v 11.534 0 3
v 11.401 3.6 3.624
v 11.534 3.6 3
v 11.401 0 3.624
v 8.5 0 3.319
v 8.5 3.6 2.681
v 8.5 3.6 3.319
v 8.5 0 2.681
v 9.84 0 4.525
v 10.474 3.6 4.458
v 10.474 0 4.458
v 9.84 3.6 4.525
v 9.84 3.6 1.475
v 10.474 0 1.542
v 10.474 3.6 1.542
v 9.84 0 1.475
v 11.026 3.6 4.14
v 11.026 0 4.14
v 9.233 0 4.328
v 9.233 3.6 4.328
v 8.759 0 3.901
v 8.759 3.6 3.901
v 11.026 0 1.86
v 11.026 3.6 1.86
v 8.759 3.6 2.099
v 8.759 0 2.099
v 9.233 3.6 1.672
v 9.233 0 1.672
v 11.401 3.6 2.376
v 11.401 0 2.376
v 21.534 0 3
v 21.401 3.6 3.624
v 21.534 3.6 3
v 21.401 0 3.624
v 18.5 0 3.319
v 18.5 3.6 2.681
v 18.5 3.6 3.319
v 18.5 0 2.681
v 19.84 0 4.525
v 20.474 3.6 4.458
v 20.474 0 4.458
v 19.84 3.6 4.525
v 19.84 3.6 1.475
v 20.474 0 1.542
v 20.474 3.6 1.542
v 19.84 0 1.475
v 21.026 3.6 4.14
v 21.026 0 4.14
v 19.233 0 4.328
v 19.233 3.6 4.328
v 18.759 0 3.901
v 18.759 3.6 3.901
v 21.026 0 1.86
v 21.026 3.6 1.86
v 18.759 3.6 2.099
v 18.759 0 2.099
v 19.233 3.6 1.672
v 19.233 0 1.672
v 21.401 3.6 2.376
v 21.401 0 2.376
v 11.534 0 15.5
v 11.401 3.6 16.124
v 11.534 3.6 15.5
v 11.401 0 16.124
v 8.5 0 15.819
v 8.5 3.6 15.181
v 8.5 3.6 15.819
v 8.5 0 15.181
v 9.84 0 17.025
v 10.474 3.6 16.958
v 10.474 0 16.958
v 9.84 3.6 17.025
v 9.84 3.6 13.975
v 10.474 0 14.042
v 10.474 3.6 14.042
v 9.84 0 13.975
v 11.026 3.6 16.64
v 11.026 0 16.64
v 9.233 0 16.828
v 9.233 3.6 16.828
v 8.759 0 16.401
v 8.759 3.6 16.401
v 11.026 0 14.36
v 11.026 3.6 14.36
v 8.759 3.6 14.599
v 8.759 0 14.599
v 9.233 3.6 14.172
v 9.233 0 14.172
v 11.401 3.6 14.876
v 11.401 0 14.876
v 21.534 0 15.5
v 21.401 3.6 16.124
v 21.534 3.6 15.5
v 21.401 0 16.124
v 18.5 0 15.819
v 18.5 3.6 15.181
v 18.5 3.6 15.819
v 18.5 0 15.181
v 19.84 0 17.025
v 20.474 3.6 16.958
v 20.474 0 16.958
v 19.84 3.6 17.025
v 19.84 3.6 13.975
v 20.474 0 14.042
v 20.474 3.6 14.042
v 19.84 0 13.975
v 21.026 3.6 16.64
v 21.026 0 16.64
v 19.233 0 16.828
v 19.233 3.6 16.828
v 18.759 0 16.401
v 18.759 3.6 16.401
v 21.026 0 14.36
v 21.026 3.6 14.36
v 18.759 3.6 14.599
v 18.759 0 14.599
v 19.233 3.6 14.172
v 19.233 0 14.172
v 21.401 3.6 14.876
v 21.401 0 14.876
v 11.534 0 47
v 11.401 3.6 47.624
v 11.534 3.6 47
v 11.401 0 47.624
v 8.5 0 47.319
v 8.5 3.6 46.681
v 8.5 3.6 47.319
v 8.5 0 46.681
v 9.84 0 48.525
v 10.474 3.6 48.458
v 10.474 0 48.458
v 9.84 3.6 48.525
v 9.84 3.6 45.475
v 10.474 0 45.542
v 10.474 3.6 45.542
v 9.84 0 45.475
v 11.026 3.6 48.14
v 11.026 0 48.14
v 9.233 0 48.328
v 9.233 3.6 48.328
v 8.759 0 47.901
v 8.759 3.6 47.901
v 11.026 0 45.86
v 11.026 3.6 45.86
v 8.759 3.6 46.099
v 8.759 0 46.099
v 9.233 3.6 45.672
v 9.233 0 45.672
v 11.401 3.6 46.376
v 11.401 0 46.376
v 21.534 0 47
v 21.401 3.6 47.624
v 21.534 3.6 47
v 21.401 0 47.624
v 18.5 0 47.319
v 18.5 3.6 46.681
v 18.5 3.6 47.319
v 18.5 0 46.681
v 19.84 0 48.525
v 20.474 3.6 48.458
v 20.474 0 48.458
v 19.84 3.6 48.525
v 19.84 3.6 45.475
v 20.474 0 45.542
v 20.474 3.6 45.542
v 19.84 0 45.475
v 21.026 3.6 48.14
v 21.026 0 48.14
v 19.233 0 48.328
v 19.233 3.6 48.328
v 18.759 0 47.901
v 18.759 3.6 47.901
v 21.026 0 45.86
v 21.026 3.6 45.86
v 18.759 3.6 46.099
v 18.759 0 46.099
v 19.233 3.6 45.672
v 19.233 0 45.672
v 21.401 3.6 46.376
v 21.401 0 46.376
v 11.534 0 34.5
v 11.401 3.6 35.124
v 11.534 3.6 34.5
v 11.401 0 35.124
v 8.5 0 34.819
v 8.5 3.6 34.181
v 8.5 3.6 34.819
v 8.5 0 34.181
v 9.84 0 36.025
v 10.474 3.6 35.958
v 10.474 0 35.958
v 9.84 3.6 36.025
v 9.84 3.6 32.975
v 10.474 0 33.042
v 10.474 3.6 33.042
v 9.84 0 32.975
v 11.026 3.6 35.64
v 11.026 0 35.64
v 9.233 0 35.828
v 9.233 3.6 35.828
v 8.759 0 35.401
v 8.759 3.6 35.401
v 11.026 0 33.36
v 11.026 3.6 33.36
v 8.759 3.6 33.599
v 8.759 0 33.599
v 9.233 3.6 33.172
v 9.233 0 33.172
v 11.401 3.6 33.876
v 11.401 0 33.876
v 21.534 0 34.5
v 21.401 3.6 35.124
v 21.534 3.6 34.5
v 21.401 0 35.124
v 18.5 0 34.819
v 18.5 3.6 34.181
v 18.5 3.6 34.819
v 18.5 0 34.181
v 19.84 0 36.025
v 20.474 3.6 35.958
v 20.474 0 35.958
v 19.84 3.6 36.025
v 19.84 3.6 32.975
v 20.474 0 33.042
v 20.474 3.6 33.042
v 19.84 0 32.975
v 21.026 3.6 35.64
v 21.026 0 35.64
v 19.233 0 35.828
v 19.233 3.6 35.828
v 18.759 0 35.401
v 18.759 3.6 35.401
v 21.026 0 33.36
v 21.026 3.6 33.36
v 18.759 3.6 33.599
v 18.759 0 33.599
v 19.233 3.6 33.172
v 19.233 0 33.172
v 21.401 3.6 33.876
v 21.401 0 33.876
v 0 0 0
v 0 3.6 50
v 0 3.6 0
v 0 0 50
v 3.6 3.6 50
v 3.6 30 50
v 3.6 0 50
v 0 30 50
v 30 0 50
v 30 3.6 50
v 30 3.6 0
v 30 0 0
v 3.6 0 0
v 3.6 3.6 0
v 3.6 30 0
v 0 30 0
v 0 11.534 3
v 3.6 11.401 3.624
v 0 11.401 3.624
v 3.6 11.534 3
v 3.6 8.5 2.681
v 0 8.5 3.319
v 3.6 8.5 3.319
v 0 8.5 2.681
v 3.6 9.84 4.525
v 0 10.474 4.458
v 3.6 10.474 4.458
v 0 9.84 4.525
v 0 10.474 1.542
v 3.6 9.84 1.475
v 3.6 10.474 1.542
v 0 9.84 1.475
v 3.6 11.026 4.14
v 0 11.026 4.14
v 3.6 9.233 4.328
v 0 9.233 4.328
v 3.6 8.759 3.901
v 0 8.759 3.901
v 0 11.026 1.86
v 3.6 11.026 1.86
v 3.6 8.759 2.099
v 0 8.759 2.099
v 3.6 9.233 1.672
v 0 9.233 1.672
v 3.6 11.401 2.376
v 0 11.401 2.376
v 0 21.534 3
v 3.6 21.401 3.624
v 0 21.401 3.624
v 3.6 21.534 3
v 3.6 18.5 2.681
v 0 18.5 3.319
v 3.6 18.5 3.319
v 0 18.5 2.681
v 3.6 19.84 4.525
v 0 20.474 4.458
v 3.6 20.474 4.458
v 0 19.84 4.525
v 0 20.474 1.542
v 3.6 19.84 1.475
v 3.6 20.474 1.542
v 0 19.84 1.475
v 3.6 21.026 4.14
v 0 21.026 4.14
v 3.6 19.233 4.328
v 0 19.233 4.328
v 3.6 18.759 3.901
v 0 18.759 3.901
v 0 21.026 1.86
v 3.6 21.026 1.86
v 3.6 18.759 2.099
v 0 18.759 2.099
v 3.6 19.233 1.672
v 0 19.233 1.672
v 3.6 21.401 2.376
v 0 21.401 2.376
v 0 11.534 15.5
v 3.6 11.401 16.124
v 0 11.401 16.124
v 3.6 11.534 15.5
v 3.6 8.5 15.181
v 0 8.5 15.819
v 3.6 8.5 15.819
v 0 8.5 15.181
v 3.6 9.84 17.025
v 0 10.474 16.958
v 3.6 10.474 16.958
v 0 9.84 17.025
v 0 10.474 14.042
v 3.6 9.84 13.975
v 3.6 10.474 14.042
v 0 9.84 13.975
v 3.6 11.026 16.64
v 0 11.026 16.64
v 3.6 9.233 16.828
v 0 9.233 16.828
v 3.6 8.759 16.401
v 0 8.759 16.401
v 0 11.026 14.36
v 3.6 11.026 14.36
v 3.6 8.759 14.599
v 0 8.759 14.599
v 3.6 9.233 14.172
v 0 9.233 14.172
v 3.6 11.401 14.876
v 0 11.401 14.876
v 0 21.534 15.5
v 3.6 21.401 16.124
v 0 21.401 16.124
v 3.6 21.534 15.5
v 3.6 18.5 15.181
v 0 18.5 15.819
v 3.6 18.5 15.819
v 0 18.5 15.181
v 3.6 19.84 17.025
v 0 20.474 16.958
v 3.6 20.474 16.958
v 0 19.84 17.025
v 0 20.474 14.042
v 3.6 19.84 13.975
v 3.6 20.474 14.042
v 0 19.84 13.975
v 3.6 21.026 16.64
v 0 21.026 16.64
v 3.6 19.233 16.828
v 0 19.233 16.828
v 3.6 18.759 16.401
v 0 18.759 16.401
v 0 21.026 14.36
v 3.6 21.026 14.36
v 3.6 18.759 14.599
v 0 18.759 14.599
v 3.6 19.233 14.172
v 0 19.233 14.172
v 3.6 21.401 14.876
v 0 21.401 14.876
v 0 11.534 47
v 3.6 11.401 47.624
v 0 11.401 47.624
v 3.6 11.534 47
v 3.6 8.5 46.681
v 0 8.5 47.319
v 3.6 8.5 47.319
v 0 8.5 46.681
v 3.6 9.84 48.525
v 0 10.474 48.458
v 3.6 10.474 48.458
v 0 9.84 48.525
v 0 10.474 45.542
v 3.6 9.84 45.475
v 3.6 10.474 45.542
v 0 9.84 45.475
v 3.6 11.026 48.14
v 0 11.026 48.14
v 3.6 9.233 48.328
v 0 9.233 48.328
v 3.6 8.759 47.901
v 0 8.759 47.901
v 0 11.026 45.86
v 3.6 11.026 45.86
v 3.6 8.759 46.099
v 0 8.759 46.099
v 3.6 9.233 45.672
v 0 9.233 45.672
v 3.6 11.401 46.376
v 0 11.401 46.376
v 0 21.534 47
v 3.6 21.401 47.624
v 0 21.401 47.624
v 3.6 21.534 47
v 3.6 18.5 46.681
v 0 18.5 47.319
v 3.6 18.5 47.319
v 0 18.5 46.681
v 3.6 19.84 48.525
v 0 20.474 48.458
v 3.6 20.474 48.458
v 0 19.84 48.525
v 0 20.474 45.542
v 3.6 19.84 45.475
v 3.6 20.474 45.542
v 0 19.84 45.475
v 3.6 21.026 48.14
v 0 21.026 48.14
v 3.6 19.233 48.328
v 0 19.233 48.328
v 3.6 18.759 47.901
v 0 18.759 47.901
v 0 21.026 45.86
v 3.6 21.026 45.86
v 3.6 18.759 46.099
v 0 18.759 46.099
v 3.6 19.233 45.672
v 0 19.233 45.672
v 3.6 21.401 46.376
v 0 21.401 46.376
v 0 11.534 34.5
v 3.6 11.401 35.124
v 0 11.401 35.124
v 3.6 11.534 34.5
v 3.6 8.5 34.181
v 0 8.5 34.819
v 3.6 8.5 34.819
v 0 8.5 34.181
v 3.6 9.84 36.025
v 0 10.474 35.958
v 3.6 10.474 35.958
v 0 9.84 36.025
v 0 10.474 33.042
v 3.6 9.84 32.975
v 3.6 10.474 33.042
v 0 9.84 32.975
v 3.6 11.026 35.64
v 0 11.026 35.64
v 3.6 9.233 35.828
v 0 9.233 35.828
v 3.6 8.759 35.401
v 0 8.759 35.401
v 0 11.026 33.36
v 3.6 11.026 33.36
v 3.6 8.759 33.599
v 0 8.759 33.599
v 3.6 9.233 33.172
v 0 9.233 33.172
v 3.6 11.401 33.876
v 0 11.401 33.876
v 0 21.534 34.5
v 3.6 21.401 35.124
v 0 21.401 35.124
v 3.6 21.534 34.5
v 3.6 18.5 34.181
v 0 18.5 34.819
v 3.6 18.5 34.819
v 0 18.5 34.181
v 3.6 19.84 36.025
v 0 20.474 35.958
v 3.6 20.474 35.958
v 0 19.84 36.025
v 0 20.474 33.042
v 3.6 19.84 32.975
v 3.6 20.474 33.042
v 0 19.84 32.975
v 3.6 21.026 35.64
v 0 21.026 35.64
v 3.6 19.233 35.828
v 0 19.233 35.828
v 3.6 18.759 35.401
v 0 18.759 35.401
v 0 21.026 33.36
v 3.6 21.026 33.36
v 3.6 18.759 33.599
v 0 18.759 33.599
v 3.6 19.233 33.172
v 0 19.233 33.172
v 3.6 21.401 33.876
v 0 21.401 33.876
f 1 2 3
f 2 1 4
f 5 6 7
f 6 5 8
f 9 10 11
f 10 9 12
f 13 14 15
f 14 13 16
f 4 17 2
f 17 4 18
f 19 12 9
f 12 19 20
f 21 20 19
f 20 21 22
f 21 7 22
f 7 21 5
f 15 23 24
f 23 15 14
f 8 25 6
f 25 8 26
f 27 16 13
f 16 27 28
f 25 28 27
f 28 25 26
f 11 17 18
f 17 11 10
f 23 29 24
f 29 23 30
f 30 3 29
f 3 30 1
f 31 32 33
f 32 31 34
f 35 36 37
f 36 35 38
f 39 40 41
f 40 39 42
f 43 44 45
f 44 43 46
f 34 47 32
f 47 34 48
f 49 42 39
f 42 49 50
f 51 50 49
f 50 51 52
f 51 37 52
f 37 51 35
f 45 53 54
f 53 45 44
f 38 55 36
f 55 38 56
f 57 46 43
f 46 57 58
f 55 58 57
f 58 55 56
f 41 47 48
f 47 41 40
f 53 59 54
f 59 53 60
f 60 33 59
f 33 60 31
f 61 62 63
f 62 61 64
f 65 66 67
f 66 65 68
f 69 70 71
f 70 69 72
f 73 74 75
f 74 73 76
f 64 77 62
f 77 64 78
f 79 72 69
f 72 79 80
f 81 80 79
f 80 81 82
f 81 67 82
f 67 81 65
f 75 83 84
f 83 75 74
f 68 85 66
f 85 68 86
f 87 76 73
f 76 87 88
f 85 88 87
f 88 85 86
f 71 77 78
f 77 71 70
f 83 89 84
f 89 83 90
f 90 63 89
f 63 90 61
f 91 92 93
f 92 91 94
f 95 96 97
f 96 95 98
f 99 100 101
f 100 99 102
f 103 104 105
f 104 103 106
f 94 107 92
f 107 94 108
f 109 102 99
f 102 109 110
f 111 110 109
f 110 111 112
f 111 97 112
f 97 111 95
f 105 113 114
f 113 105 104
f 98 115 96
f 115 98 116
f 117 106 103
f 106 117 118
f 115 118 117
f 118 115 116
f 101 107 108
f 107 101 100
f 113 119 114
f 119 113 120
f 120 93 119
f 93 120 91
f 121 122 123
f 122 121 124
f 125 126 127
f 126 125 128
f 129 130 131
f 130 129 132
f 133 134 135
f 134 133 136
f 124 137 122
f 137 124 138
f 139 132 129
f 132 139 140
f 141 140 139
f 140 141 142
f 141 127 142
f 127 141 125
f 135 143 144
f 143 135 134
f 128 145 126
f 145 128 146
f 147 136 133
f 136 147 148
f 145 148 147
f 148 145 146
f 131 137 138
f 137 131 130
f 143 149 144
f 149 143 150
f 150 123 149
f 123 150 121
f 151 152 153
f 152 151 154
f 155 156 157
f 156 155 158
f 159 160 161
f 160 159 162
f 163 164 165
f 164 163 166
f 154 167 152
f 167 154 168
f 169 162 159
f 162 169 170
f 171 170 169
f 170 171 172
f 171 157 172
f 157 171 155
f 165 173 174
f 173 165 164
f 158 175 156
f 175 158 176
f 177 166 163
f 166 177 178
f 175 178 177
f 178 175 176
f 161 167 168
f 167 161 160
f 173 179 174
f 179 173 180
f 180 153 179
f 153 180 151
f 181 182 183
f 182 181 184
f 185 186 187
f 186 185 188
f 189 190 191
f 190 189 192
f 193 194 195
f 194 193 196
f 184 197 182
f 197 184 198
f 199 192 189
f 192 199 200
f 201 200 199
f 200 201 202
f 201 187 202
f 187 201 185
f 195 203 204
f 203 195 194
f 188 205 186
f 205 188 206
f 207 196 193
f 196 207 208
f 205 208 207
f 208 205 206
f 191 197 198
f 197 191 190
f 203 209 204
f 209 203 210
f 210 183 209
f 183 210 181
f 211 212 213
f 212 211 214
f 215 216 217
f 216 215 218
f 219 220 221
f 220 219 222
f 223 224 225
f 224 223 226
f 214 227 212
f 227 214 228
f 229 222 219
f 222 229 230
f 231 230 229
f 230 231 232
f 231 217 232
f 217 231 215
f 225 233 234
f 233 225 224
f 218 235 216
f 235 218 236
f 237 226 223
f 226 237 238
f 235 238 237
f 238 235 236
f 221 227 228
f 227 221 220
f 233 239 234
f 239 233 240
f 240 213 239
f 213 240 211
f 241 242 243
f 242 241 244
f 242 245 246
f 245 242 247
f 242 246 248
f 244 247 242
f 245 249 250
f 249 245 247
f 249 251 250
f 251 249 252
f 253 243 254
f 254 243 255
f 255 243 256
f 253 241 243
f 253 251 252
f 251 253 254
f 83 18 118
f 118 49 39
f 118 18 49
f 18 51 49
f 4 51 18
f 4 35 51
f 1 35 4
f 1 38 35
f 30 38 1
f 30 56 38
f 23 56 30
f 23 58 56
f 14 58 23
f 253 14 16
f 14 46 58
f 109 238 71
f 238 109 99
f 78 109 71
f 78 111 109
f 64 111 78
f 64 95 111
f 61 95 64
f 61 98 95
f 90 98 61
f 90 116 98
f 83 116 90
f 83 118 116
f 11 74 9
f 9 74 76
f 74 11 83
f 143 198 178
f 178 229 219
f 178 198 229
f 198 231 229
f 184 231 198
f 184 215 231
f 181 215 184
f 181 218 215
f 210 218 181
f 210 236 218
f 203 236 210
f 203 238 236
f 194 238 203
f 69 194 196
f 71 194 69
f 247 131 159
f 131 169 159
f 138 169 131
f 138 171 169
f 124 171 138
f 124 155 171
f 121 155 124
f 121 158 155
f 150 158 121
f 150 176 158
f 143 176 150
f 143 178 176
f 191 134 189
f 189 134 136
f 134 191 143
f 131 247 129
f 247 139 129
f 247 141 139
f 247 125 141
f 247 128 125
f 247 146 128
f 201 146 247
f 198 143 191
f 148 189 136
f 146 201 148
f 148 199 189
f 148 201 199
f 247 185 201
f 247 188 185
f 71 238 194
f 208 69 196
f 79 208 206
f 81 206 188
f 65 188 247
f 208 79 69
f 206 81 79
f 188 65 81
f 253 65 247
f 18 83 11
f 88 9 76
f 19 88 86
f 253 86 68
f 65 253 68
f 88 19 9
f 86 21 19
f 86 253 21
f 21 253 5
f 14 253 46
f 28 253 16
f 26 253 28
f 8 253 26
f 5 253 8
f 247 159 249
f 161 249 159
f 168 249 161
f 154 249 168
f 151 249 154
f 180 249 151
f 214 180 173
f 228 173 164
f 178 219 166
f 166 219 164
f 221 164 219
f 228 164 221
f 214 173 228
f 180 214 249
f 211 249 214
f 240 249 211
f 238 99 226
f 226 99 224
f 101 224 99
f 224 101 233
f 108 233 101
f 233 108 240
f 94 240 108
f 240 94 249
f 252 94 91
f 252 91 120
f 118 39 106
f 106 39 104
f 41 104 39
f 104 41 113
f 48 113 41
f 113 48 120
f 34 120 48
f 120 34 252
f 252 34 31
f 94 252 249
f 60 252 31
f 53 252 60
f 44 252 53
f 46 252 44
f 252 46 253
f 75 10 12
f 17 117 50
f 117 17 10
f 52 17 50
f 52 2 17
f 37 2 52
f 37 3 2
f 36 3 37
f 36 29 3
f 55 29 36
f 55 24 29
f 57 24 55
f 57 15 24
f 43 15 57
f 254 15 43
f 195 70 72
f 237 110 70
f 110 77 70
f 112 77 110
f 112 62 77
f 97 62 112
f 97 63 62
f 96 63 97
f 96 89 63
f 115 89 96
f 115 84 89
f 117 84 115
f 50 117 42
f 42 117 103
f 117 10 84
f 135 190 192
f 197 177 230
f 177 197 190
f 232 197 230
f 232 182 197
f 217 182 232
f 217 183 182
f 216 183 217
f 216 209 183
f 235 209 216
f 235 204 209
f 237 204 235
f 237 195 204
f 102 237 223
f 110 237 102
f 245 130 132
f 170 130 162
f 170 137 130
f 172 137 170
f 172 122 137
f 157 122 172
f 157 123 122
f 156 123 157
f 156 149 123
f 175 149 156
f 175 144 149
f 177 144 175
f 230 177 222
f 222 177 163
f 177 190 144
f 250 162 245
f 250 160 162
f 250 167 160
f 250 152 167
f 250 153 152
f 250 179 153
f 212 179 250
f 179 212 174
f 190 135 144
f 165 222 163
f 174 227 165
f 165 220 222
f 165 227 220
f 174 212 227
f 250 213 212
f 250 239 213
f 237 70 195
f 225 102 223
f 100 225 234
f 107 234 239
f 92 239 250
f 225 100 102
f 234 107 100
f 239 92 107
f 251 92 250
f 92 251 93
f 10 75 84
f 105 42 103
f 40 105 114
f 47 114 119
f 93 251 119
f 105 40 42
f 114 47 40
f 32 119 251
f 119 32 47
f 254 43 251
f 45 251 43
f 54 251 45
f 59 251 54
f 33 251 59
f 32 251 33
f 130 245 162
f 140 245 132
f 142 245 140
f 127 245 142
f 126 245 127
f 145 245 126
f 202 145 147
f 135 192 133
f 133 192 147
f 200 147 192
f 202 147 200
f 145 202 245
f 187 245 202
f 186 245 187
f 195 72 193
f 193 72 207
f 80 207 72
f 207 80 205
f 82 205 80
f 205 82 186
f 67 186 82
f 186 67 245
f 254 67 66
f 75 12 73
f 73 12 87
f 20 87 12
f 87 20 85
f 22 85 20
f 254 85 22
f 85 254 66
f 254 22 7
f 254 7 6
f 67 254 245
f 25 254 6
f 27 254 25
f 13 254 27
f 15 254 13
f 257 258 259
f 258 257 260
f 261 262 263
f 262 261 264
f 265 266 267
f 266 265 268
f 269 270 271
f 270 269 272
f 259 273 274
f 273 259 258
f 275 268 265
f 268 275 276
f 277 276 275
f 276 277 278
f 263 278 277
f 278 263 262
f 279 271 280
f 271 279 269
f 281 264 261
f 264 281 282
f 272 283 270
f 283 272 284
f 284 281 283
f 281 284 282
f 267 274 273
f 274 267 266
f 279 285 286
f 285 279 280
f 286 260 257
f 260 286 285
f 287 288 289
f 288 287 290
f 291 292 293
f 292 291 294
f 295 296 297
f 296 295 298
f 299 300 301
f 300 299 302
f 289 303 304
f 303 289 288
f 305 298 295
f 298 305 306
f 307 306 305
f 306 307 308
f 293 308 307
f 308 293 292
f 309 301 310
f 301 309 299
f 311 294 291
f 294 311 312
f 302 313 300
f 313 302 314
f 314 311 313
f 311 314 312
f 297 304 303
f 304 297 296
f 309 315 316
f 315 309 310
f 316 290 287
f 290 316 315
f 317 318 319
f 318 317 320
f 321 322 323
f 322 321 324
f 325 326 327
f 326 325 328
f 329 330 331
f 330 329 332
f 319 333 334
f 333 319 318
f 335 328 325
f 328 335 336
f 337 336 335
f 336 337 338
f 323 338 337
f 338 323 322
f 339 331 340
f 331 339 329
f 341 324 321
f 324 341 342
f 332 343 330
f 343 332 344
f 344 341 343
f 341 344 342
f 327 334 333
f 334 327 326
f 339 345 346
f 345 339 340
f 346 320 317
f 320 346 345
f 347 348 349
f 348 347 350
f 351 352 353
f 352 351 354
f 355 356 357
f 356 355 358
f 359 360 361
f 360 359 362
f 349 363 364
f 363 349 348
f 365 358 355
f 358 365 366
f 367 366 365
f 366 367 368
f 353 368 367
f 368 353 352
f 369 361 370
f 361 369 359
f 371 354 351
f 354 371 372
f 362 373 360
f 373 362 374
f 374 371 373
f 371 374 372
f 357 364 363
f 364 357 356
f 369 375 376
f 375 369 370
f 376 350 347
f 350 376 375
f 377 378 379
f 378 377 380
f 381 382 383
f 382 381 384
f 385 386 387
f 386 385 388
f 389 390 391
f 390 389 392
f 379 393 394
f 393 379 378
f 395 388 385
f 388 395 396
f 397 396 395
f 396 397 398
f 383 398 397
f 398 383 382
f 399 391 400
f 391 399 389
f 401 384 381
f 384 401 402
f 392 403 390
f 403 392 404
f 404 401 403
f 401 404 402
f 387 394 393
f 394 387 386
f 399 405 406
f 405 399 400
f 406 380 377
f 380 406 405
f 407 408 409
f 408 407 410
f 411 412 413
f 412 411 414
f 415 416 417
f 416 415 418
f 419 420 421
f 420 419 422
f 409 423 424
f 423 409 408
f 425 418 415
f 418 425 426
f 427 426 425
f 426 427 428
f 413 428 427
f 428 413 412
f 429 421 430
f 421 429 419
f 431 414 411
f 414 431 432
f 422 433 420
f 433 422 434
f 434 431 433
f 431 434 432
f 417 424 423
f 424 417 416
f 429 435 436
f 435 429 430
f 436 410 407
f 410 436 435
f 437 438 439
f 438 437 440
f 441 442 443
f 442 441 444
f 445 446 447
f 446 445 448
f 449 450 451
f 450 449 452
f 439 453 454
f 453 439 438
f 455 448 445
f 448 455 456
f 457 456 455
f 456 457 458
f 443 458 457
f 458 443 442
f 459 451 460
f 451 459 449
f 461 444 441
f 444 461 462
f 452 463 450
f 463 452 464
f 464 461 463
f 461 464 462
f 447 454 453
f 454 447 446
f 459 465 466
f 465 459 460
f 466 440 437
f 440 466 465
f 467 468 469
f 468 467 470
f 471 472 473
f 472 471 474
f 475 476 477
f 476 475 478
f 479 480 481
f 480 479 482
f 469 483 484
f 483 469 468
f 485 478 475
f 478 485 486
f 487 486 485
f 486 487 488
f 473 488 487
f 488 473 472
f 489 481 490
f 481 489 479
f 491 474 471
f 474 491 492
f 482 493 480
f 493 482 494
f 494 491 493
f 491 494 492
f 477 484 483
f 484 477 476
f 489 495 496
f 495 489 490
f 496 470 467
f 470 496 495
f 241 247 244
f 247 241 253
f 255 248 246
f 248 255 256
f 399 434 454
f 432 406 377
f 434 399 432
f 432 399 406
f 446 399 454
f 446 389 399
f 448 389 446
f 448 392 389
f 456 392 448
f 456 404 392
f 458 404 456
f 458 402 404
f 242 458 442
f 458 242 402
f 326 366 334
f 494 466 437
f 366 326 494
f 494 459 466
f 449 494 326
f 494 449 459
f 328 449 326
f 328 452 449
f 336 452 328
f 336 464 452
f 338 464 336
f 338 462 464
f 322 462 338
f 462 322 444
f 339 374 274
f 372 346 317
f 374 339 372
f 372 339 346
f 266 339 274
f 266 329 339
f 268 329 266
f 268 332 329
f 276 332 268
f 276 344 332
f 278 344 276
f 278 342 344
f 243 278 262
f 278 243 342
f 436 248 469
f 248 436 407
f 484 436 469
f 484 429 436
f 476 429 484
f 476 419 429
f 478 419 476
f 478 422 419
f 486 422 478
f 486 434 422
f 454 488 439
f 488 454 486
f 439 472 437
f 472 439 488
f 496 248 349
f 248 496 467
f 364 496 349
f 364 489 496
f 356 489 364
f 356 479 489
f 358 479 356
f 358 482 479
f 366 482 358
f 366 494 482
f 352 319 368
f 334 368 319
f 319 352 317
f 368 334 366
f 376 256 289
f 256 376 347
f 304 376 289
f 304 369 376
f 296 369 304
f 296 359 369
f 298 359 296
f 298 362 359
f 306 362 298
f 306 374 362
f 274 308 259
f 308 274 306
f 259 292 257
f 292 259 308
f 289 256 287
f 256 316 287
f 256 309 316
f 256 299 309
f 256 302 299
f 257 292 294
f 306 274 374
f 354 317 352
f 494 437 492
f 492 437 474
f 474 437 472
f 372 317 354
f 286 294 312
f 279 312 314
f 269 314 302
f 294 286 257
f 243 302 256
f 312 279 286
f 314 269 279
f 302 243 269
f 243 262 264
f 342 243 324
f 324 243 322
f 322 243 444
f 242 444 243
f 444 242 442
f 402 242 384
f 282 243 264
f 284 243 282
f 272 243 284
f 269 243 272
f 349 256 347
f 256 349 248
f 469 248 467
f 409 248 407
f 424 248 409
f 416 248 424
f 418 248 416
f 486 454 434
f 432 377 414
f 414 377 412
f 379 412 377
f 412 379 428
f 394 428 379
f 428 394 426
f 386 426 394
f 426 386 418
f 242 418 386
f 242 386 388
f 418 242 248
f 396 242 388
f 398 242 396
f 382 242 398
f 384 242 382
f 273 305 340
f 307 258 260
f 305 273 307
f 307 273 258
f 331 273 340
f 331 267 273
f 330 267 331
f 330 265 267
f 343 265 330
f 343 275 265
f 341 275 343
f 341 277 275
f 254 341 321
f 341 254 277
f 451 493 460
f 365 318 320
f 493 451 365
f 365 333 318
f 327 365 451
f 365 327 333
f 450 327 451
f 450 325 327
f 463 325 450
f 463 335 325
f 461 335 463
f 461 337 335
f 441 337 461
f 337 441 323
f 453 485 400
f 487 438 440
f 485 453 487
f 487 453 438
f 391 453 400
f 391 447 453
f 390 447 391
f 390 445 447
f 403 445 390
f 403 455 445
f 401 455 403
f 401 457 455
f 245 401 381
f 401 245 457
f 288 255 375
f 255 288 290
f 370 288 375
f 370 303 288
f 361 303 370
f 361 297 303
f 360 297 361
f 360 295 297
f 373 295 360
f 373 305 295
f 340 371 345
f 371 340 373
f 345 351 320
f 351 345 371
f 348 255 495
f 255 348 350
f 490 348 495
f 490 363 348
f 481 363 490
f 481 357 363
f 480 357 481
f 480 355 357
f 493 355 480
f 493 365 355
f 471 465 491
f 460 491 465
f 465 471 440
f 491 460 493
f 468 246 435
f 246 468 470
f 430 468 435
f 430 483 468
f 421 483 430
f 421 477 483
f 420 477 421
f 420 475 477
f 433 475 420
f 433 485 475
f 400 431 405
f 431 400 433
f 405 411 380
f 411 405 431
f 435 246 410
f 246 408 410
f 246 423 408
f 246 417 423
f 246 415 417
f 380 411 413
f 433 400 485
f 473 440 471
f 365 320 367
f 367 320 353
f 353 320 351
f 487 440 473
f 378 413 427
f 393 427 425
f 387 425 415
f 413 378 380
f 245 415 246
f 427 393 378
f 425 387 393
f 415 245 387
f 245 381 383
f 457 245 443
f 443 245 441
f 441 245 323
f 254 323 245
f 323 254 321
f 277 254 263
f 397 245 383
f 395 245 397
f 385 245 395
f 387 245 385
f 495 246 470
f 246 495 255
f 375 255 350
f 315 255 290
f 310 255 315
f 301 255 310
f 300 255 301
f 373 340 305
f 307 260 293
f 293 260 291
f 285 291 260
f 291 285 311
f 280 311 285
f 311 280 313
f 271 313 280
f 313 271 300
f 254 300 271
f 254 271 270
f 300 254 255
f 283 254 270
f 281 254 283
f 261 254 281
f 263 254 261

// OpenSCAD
// file: ../lib/hole.scad
module cylinder_outer(h,d=undef,d1=undef,d2=undef,fn=15) {
	fudge = cos(180/fn);
	cylinder(h=h,d=d/fudge,d1=d1/fudge,d2=d2/fudge,$fn=fn);
}

module hole(d, height, countersink=0, extra_above=false) {
	height = height - countersink;
	translate([0, 0, -(height+countersink)]) {
		translate([0, 0, height+0.001]) cylinder_outer(d1=d, d2=d*1.5, h=countersink);
		if (extra_above) {
			translate([0, 0, height+0.001]) cylinder_outer(d1=d, d2=d*2, h=countersink*3/2);
		}
		if (height > 0)
			translate([0, 0, -2]) cylinder_outer(d=d, h=height+2.1);
	}
}

module nut_trap(w, h, sides){
	cylinder(r = w / 2 / cos(180 / 6) + 0.05, h=h, $fn=6);
}

module rim(id, od, h) {
	difference() {
		cylinder_outer(h=h, d=od);
		translate([0, 0, -1]) cylinder(h=h+2, d=id);
	}
}

rim(8.5, 13, 2);
// main file
use <../lib/hole.scad>;

module angle_bracket(a = 30, b = 30, h = 50, thickness = 3.6, d = 3, angle = 90) {
	angle_bracket_side(a, h, thickness, d);
	rotate(angle) scale([1, -1, 1]) angle_bracket_side(a, h, thickness, d);
}

module angle_bracket_side(a, h, thickness, d) {
	difference() {
		cube([a, thickness, h]);
		translate([a*1/3, 0, d]) rotate([90, 0, 0]) hole(d, thickness);
		translate([a*2/3, 0, d]) rotate([90, 0, 0]) hole(d, thickness);
		translate([a*1/3, 0, d+h/4]) rotate([90, 0, 0]) hole(d, thickness);
		translate([a*2/3, 0, d+h/4]) rotate([90, 0, 0]) hole(d, thickness);
		translate([a*1/3, 0, h-d]) rotate([90, 0, 0]) hole(d, thickness);
		translate([a*2/3, 0, h-d]) rotate([90, 0, 0]) hole(d, thickness);
		translate([a*1/3, 0, h-(d+h/4)]) rotate([90, 0, 0]) hole(d, thickness);
		translate([a*2/3, 0, h-(d+h/4)]) rotate([90, 0, 0]) hole(d, thickness);
	}
}

angle_bracket();
